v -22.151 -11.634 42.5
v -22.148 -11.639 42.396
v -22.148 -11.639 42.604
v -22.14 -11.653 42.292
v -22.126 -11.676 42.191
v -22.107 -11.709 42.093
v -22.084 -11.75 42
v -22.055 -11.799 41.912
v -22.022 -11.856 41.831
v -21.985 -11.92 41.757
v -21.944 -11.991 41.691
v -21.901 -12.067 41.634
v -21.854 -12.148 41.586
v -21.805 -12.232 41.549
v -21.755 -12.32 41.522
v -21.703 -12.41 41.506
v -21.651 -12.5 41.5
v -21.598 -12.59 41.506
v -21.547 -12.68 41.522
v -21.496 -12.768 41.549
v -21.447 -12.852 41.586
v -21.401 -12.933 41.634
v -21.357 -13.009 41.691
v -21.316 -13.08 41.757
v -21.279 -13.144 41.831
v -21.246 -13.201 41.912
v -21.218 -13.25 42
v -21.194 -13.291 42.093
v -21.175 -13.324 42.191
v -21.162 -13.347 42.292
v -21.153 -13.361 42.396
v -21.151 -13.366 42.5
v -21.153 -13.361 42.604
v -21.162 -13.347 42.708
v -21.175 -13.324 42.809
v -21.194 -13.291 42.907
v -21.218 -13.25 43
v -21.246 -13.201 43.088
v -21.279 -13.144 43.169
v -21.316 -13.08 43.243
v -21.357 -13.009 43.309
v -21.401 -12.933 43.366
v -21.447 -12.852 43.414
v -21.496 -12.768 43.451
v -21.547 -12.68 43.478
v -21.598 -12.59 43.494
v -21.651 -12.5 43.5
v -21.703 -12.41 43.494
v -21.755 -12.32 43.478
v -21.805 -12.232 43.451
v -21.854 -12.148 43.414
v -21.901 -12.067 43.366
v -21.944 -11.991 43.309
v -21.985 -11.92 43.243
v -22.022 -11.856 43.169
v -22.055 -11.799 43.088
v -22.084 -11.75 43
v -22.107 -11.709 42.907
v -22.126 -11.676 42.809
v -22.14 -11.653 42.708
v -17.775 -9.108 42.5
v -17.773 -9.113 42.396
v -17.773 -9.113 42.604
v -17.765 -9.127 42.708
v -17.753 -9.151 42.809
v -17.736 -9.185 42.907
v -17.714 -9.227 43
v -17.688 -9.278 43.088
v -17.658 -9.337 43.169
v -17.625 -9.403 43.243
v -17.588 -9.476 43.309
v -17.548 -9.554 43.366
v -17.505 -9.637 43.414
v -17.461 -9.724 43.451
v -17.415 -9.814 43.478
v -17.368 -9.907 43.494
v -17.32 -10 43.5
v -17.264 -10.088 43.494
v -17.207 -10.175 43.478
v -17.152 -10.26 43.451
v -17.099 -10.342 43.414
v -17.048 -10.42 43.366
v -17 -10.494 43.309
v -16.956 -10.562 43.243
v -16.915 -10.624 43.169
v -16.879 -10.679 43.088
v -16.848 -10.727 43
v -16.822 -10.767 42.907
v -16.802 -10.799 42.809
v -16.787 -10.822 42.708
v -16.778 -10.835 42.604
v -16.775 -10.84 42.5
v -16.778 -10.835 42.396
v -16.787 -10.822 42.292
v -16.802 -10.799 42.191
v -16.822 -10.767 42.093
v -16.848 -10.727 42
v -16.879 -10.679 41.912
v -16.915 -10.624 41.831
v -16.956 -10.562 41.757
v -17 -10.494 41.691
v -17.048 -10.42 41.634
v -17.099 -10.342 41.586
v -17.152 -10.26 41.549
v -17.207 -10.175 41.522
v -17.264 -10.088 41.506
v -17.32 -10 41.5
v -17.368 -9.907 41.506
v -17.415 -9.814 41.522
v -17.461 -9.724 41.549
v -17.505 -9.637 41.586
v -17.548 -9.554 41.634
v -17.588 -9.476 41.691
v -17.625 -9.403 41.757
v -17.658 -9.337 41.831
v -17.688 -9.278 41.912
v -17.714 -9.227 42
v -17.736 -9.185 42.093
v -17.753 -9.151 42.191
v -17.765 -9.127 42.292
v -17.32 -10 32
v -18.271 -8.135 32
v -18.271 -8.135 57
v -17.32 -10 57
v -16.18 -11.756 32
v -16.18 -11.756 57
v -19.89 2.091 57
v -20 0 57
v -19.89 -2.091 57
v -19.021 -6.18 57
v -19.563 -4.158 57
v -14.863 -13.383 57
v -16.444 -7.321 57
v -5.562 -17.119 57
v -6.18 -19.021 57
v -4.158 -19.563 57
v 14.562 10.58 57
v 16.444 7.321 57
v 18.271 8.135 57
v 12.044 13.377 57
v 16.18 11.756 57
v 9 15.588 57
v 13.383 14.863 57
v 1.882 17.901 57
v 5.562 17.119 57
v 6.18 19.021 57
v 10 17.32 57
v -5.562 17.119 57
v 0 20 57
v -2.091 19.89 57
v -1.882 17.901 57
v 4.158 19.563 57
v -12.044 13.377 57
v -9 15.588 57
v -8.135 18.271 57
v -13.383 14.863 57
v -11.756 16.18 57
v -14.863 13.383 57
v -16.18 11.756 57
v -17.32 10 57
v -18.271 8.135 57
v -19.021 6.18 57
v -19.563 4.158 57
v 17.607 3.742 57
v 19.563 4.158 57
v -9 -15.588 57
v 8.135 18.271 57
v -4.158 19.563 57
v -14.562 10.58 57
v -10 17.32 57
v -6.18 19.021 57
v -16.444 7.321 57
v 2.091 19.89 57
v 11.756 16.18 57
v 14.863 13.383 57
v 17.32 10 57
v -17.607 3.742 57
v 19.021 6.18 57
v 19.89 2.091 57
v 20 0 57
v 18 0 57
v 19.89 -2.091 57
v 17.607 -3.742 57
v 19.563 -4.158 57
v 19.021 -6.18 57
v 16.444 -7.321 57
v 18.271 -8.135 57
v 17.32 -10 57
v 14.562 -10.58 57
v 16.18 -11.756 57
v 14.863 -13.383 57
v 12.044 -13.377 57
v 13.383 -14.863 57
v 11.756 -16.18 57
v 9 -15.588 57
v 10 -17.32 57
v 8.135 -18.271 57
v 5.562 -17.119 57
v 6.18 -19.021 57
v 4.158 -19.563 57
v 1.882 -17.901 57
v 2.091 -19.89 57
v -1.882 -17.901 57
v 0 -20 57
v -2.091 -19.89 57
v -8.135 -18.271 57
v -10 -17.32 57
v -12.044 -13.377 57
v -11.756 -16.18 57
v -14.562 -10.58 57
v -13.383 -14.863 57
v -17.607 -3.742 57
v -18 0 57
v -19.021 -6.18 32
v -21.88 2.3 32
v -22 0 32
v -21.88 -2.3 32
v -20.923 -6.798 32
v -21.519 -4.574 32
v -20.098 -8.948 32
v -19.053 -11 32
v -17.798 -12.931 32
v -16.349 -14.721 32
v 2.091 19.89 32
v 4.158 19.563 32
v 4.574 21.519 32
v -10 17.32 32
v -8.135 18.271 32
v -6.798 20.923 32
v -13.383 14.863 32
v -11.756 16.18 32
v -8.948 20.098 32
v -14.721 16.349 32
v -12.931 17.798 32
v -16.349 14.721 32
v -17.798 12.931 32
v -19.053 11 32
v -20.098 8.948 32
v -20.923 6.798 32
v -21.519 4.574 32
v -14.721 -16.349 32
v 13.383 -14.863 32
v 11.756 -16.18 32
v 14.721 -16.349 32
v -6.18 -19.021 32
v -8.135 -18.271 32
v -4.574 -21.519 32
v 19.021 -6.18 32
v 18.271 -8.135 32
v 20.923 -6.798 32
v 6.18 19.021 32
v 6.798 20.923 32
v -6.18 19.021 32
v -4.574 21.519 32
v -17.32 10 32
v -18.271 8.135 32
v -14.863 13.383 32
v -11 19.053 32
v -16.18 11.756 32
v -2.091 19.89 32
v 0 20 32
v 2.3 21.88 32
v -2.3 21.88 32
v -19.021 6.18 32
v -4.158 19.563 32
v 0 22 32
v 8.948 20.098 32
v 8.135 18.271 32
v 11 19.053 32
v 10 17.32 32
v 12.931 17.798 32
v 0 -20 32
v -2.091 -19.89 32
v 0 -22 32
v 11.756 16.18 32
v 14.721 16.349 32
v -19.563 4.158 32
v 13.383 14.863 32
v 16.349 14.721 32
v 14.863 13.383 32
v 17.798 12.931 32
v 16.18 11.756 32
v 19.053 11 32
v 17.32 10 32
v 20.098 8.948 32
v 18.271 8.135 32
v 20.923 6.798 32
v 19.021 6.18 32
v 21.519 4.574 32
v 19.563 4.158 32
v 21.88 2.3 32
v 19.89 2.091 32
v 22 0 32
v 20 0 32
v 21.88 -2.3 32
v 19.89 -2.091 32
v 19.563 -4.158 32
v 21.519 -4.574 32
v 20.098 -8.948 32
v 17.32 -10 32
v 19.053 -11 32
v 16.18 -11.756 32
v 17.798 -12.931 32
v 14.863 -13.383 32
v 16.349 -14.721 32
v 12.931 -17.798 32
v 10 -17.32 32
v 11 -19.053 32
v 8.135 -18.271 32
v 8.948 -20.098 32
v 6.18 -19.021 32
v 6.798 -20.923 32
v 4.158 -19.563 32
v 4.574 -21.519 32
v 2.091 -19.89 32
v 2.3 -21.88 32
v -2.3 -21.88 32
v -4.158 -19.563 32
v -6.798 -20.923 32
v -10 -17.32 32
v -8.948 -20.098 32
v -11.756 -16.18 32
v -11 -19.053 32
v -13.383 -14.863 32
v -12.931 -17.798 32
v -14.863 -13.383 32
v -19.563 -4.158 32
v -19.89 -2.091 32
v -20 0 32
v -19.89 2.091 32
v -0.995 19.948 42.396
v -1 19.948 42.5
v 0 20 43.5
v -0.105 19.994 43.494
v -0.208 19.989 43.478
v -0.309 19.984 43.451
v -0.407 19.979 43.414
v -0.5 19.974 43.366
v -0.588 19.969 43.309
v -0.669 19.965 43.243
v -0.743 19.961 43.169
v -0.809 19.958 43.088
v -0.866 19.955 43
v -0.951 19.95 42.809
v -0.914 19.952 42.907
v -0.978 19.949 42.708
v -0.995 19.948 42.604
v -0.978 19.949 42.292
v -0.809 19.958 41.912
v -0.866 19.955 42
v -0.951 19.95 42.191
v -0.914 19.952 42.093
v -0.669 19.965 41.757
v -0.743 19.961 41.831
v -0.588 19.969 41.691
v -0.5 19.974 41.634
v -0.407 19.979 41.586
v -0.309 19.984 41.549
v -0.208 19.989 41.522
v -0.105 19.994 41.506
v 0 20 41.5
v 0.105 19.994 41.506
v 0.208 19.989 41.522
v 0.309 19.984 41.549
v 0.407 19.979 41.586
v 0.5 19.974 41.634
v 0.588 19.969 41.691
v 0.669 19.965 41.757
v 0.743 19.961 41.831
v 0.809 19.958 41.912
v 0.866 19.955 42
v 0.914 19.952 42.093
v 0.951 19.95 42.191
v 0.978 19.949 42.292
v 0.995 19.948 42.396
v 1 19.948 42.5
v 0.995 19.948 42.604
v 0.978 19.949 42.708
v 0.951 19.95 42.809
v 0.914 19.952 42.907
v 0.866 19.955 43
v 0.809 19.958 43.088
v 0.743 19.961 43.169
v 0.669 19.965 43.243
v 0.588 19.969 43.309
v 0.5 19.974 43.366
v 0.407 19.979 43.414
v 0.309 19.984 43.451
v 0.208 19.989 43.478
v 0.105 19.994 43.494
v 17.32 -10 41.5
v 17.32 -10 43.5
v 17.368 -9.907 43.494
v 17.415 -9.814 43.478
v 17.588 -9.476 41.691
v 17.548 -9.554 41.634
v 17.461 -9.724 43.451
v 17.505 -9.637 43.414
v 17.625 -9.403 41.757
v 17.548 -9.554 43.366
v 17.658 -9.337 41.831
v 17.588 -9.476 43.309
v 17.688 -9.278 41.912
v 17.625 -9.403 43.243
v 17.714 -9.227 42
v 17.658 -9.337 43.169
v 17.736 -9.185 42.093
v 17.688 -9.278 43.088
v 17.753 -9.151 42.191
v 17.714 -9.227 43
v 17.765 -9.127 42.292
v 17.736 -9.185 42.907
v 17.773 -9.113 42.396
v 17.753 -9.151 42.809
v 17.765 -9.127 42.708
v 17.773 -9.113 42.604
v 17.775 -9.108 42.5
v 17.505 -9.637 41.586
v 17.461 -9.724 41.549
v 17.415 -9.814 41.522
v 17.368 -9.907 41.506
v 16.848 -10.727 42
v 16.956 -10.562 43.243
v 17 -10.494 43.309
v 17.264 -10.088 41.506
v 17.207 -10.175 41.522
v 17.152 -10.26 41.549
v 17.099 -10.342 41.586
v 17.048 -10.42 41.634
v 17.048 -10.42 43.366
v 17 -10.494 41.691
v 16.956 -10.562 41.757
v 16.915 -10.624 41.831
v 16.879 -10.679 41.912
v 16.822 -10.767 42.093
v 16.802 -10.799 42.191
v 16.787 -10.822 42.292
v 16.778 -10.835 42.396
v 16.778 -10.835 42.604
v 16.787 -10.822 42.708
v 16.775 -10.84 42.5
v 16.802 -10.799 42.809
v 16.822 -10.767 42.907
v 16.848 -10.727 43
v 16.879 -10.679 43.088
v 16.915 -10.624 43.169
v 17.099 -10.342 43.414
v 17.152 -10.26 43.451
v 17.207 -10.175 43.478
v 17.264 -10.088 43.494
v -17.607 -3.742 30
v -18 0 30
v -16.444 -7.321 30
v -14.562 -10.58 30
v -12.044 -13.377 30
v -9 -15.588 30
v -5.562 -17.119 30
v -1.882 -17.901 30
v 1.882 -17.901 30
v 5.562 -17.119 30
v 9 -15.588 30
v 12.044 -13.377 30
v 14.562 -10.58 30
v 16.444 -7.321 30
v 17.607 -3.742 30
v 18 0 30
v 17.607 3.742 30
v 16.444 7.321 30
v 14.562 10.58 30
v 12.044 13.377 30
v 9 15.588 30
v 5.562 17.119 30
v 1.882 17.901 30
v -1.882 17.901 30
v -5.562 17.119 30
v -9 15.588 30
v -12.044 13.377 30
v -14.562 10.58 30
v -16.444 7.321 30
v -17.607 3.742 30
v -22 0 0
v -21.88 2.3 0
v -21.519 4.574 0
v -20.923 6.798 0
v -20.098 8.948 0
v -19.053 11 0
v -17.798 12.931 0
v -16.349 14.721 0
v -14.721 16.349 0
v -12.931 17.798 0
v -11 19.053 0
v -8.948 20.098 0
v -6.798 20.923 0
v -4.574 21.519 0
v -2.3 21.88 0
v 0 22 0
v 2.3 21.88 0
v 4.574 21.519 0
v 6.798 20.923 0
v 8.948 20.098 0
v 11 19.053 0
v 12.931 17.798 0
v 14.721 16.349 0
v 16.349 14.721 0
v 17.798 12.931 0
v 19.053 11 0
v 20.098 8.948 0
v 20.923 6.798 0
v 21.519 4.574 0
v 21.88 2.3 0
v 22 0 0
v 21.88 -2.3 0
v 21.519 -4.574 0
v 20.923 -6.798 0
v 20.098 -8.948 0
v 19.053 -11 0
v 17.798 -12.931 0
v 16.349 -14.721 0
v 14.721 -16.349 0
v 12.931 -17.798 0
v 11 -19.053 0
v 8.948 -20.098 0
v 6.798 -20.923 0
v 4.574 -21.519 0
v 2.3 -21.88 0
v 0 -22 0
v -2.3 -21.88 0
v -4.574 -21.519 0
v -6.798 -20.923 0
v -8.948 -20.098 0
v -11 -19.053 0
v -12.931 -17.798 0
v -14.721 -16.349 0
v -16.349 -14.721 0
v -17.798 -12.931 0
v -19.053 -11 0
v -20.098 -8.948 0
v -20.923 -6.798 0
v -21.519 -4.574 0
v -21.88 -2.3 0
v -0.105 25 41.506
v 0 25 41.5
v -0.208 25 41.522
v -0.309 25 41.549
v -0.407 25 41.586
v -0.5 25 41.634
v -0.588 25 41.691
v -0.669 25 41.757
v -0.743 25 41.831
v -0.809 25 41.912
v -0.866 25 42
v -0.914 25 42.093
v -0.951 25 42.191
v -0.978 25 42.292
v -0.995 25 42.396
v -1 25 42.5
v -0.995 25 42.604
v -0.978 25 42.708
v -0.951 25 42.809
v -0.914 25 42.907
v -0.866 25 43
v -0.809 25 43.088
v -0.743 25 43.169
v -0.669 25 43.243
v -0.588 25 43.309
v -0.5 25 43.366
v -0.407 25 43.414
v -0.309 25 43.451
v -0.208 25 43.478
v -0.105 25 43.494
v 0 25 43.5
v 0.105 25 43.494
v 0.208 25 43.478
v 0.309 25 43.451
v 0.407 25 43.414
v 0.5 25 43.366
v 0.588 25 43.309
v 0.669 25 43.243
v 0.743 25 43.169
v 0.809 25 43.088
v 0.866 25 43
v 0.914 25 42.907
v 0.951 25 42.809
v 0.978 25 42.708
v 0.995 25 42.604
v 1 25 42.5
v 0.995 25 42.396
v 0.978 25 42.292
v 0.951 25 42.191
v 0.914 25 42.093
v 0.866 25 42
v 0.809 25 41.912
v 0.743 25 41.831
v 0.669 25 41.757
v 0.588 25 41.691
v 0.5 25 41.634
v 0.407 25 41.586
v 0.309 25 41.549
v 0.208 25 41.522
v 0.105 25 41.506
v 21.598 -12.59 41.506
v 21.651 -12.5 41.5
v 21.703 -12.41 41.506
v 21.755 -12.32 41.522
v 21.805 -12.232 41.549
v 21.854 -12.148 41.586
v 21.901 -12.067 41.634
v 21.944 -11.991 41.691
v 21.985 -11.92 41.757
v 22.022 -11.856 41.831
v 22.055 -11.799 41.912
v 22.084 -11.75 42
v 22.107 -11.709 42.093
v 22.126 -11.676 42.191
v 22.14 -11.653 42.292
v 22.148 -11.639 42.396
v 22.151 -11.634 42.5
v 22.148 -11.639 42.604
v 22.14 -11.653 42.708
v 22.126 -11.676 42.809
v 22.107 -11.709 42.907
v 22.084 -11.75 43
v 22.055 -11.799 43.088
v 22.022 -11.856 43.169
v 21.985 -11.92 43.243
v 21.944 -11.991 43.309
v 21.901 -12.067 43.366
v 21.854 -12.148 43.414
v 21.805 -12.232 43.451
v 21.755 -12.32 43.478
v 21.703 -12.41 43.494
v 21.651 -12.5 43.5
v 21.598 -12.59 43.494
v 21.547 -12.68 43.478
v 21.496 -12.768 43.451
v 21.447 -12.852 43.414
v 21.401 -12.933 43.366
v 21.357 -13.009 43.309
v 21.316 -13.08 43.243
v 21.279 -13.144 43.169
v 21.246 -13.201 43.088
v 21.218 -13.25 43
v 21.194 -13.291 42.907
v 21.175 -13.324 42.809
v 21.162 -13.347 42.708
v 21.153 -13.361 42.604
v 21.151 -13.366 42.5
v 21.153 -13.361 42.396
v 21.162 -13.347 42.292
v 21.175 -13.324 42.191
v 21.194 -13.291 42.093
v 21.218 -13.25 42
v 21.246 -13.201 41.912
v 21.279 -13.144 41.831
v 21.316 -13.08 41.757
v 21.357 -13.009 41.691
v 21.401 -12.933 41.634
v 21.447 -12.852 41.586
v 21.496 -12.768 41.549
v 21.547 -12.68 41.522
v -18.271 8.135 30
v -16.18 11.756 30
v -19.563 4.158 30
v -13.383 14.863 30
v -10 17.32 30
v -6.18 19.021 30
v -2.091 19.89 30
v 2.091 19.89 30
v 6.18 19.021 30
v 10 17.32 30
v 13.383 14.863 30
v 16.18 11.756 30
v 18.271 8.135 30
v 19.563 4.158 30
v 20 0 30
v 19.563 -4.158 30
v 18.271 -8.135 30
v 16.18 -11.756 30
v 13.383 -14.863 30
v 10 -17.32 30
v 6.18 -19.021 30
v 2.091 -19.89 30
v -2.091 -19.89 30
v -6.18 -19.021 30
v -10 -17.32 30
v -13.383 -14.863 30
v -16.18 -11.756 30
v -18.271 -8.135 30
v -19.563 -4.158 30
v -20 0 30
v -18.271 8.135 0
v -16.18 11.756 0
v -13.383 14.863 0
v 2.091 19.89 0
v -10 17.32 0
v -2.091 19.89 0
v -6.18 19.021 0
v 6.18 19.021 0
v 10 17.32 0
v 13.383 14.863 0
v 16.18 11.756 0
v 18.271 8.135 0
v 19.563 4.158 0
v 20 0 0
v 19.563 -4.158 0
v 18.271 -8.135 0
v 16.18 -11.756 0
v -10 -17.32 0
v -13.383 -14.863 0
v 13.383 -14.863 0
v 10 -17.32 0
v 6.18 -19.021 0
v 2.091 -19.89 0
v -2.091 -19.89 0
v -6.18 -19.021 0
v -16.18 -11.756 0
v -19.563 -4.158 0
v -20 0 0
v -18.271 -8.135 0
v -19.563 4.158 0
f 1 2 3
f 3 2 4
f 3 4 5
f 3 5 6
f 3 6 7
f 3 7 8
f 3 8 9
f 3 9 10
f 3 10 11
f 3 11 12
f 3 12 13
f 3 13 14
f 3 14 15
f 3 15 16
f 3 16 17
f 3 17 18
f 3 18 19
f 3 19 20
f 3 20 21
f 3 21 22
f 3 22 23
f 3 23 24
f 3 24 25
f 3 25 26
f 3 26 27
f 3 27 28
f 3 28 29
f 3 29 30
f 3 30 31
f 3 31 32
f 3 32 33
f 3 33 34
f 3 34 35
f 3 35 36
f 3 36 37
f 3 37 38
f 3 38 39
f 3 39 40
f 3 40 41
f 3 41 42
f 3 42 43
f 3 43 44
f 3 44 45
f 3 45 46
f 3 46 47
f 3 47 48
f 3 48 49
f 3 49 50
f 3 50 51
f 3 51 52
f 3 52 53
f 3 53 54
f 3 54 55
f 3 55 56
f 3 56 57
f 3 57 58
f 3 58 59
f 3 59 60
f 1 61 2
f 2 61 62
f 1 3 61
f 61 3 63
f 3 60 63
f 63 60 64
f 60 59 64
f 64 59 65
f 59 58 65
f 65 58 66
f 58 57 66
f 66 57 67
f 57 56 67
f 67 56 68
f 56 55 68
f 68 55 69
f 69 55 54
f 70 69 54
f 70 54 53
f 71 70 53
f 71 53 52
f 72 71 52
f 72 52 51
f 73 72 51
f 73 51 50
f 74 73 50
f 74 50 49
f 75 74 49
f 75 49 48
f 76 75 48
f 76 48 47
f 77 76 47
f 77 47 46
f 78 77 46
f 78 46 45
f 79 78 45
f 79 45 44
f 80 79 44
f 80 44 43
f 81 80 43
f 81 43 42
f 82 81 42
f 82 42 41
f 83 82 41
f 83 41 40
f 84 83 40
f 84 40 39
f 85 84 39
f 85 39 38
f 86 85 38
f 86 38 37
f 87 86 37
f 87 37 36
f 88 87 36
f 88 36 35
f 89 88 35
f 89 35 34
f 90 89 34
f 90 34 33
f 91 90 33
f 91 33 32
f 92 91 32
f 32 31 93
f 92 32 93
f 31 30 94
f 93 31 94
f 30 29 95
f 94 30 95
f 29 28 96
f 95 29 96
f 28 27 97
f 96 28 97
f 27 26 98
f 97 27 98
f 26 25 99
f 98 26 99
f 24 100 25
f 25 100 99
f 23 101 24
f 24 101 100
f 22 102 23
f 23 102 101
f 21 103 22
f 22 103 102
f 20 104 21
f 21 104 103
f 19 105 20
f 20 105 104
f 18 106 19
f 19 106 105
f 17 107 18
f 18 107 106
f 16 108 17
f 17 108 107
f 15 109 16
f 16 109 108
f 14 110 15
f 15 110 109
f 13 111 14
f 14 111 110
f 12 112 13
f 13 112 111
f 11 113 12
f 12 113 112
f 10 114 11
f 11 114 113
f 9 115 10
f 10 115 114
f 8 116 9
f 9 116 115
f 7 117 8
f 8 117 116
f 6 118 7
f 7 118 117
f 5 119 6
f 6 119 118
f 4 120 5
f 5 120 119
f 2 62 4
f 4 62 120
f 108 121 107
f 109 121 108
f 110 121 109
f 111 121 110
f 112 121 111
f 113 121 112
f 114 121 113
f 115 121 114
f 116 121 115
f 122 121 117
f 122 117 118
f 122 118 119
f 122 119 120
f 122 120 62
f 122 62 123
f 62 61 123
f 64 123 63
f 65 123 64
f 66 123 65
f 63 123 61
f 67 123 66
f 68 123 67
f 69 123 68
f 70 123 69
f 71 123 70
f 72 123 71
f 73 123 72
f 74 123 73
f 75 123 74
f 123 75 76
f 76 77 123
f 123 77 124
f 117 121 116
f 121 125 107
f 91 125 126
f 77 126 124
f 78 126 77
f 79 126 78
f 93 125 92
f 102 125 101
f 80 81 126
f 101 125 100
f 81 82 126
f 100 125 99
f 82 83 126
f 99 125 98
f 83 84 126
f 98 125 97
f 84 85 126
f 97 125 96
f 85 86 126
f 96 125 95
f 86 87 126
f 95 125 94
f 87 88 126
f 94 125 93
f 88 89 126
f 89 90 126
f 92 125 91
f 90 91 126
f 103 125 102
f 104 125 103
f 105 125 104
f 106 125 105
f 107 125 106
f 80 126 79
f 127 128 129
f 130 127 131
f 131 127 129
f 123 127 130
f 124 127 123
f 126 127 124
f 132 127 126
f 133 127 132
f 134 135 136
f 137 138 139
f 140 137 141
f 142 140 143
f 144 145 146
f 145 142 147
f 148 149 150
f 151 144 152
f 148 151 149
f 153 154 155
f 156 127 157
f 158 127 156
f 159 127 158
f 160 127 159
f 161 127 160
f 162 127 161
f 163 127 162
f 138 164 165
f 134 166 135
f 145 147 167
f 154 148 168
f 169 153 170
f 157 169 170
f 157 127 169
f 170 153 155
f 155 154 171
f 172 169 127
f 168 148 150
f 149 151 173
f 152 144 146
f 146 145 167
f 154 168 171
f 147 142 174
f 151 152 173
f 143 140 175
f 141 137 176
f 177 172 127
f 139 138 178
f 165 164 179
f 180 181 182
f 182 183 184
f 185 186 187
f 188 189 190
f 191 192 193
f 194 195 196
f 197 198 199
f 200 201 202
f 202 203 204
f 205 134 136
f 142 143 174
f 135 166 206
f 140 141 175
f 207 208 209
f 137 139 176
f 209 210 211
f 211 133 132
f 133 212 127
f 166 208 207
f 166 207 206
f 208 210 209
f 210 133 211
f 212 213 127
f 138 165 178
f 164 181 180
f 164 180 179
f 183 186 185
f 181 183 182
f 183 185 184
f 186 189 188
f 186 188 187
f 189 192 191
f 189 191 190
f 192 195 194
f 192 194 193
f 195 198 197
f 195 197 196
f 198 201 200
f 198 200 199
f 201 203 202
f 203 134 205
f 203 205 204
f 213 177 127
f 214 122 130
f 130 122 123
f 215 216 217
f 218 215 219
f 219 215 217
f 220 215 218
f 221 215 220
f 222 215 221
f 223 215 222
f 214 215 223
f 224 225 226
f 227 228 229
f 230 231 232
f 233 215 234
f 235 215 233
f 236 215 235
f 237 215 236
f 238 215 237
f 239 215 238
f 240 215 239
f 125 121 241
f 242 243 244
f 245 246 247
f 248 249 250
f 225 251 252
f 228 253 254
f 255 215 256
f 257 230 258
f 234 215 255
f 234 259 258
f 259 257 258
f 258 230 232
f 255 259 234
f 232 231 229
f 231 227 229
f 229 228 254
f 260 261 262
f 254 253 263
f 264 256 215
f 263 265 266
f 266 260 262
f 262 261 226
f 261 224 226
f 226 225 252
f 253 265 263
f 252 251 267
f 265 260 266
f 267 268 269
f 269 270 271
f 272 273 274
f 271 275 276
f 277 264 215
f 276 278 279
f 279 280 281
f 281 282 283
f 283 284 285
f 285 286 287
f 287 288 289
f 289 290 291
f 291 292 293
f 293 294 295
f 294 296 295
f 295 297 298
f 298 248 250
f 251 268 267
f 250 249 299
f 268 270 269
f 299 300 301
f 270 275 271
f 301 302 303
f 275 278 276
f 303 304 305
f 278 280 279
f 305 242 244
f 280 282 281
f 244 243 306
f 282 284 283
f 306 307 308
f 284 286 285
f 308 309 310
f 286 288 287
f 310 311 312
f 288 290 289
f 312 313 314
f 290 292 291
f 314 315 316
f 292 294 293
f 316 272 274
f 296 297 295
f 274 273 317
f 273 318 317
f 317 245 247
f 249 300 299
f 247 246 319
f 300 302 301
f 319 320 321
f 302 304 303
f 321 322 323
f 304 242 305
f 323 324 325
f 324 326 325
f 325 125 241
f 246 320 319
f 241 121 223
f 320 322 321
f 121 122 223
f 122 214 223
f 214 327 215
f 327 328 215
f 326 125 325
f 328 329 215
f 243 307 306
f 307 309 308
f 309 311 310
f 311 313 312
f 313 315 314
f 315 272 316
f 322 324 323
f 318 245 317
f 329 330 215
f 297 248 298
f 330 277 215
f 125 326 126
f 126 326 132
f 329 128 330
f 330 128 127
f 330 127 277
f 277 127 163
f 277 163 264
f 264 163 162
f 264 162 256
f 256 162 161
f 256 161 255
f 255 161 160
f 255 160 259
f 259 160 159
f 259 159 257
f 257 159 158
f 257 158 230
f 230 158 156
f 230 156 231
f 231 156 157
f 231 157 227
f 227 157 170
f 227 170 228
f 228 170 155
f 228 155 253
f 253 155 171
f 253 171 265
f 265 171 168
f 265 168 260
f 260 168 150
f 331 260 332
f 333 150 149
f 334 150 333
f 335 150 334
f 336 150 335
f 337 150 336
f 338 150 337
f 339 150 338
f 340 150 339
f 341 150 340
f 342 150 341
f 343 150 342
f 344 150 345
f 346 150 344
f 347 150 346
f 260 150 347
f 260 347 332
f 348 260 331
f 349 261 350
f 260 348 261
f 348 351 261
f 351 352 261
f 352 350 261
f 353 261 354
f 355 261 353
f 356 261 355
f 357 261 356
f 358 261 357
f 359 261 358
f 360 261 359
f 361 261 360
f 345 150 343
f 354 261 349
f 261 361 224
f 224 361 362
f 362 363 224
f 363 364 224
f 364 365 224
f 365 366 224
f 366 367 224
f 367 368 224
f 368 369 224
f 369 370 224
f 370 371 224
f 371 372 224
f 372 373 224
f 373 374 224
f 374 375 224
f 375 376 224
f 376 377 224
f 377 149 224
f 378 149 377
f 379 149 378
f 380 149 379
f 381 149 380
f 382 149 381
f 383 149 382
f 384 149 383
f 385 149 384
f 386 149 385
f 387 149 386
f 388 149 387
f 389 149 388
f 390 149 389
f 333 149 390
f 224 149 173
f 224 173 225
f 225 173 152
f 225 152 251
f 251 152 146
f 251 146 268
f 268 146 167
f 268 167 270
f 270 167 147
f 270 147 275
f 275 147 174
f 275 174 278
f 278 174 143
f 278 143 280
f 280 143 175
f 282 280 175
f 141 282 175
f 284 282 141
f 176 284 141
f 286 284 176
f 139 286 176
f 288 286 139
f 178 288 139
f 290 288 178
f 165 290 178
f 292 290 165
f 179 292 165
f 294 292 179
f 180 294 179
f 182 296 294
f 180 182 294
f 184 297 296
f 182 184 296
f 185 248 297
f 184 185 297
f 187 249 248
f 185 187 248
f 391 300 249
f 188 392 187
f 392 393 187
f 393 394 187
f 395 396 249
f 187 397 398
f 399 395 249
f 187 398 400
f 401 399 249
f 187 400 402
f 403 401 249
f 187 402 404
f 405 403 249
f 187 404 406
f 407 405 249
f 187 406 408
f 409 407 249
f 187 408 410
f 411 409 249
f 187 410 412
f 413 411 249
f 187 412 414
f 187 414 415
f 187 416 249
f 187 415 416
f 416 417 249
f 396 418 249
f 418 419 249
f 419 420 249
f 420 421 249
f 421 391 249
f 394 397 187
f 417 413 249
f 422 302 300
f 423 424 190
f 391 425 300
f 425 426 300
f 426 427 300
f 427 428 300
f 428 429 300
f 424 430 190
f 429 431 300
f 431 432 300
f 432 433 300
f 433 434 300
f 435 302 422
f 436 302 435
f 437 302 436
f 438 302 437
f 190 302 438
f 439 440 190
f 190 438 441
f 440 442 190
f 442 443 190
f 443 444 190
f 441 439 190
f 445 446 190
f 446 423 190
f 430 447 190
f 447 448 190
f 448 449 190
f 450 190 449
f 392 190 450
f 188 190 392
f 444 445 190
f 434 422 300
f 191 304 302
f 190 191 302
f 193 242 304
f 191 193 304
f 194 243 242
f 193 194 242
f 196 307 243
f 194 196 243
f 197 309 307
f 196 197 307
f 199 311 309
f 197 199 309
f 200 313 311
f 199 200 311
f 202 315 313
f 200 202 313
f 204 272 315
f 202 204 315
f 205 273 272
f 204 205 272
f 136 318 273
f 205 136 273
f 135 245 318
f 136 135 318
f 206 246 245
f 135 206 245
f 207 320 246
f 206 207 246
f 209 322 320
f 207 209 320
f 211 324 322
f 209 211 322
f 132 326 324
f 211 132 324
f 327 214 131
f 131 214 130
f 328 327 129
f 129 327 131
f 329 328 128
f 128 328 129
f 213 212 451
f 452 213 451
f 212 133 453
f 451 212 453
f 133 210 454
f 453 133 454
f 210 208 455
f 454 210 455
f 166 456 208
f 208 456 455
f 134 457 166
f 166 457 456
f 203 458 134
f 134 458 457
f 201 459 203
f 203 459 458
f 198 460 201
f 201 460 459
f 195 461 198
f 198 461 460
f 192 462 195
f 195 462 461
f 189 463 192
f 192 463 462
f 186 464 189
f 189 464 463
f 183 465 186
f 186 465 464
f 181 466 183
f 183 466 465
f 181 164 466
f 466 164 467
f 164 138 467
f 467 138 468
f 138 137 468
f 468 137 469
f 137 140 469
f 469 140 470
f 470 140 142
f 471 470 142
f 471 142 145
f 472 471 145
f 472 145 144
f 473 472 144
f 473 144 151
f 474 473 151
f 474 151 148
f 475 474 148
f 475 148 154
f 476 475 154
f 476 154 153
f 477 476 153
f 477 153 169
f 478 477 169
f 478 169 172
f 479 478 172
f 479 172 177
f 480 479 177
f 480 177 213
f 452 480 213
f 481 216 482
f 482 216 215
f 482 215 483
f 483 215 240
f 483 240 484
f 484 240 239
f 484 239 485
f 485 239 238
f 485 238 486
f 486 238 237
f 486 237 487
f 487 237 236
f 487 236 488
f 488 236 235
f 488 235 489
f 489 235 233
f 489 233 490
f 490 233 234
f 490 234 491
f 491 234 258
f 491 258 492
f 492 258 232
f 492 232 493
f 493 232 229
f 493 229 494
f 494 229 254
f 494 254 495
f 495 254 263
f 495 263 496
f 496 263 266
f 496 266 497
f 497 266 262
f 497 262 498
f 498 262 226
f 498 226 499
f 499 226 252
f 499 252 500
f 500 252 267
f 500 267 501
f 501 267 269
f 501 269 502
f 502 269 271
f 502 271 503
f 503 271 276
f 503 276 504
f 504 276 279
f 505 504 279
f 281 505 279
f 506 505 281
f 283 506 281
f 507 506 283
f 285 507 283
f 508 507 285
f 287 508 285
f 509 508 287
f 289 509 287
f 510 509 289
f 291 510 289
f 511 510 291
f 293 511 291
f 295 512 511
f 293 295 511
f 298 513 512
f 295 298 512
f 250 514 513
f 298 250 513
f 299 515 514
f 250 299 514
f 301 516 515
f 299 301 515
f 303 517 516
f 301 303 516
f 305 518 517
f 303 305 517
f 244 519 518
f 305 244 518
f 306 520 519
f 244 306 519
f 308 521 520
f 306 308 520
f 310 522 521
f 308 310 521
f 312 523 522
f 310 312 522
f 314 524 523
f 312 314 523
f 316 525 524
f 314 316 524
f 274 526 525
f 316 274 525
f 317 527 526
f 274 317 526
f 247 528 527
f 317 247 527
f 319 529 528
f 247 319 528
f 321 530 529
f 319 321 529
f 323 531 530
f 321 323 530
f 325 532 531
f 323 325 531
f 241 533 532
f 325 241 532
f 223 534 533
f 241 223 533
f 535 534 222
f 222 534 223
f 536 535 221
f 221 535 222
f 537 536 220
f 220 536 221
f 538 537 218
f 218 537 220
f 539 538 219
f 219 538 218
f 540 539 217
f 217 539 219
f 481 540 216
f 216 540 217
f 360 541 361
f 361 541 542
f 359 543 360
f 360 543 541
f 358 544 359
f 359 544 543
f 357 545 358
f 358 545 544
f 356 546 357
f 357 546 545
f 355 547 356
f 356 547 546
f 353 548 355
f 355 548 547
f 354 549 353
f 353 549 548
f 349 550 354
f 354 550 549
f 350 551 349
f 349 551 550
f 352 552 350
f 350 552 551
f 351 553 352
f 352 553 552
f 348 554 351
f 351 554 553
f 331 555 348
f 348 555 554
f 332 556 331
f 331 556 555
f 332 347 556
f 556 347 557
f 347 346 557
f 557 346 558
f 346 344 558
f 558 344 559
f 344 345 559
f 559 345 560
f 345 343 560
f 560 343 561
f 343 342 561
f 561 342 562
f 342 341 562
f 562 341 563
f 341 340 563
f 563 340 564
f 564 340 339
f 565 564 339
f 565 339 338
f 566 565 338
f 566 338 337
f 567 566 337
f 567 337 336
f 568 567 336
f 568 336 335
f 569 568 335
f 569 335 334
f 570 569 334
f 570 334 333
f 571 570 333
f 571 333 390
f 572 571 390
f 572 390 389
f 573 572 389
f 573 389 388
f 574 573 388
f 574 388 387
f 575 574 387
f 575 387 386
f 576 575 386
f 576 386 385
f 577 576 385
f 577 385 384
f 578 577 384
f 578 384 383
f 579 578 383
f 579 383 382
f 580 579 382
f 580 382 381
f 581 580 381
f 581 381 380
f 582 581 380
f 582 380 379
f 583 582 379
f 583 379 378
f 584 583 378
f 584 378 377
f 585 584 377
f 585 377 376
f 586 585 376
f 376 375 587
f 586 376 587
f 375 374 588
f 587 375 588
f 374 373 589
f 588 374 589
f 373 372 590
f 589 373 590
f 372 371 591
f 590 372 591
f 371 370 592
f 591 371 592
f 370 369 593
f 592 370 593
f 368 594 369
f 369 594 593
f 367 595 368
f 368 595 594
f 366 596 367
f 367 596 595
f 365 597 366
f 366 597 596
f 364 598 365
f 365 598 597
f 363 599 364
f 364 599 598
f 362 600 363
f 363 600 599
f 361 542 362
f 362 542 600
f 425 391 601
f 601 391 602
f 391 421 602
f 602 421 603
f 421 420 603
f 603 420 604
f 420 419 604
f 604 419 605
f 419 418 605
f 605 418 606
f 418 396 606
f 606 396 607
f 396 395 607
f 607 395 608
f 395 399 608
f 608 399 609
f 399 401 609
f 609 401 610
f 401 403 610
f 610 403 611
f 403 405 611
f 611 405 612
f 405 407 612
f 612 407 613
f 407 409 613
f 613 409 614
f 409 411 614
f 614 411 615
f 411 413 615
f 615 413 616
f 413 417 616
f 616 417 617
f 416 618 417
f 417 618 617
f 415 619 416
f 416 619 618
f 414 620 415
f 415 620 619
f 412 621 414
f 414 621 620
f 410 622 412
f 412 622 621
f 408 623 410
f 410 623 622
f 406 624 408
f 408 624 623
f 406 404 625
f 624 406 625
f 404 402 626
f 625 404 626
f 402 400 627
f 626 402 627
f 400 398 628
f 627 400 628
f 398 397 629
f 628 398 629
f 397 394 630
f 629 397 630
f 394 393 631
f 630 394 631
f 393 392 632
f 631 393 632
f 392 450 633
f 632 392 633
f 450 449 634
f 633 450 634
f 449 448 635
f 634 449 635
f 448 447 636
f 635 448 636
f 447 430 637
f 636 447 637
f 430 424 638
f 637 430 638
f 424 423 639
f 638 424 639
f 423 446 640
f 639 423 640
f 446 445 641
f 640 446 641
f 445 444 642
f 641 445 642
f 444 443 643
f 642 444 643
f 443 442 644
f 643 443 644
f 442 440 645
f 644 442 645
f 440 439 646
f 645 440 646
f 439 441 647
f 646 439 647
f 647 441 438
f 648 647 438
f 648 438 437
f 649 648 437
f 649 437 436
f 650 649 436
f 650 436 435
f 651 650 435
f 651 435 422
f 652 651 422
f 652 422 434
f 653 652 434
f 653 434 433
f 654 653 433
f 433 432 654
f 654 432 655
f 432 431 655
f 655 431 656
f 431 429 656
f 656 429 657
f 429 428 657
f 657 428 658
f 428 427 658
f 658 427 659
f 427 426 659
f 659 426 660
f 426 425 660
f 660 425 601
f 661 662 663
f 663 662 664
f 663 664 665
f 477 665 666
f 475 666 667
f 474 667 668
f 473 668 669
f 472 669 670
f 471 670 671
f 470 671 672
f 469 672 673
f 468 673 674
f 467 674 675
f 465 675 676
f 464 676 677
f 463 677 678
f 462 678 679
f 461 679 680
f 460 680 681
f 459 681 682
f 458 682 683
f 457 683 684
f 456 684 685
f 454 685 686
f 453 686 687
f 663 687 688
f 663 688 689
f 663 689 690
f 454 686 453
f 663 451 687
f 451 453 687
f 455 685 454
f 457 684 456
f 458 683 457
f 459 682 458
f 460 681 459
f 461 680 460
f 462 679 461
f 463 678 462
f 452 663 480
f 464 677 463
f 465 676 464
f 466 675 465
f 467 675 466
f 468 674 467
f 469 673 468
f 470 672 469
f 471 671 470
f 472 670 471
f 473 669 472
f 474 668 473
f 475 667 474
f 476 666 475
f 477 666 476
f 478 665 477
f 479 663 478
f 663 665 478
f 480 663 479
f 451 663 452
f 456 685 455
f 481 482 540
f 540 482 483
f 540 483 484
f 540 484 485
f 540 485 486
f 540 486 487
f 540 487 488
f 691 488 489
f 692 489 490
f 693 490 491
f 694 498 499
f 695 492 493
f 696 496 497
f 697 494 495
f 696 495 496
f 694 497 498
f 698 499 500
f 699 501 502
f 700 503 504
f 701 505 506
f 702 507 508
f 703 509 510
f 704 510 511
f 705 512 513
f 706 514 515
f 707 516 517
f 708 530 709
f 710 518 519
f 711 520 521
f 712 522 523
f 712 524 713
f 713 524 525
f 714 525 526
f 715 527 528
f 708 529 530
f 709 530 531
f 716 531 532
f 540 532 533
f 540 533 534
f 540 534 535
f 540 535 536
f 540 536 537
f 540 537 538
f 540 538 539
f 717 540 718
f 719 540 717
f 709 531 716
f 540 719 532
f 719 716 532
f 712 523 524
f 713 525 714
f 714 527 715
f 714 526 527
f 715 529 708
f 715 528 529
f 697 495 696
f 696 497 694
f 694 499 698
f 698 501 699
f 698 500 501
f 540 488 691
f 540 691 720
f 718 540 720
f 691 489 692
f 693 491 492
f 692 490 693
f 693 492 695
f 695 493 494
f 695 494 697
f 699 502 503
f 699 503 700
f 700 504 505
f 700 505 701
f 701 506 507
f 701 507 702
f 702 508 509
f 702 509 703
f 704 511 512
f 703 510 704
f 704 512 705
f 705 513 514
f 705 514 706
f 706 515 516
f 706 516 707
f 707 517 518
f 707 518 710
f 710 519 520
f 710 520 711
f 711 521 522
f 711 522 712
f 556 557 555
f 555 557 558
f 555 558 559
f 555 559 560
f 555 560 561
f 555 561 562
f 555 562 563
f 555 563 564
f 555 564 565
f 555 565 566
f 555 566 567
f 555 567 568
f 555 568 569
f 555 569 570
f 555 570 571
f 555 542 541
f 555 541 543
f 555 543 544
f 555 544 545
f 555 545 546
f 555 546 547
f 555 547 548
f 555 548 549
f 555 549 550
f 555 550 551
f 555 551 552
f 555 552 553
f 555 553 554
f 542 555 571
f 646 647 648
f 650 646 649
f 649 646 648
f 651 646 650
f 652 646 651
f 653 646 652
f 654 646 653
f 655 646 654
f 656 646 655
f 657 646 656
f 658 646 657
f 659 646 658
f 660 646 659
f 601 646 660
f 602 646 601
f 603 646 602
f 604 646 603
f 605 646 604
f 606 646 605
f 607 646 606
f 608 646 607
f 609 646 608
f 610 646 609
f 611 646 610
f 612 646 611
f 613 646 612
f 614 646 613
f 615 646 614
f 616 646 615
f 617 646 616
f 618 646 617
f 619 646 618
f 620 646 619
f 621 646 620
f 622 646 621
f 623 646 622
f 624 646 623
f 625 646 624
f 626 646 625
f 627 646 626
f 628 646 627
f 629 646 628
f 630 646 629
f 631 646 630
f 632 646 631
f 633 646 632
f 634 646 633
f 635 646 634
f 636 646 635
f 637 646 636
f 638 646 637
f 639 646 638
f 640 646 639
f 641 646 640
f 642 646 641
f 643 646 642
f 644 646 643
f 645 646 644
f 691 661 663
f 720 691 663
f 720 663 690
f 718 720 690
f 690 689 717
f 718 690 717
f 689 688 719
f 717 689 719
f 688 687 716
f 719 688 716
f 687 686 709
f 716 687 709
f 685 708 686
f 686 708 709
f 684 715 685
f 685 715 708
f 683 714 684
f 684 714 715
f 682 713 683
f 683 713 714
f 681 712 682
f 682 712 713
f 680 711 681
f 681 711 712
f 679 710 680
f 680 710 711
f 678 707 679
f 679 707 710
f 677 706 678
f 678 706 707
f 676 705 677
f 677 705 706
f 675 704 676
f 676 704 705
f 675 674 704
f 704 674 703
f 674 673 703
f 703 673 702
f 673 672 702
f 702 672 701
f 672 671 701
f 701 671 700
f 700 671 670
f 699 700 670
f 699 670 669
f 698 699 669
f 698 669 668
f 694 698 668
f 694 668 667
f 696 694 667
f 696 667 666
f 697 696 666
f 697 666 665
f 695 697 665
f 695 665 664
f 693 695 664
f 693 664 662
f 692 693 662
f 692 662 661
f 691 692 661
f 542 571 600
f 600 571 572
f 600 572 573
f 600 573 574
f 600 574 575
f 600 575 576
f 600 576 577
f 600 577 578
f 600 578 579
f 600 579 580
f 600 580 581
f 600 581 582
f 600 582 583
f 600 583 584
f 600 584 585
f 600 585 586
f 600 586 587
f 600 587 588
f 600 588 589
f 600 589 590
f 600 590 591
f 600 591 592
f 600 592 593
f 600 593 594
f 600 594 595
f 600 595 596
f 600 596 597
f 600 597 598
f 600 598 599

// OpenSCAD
// file: common.scad
module ring(nombre_spheres, rayon_spheres, rayon_exterieur){
	for ( i= [0:nombre_spheres])
		rotate([0,0,i*(360/nombre_spheres)]) {
			translate([rayon_exterieur,0,0])
			sphere(rayon_spheres, $fn=resolution_spheres);
		}
}

module tube(hauteur, rayon_exterieur, rayon_interieur, resolution=60) {
	difference(){
	  cylinder(hauteur, rayon_exterieur, rayon_exterieur, $fn=resolution);
	  translate([0,0,-1])	
	 	  cylinder(hauteur + 2 , rayon_interieur, rayon_interieur);
	}
}
// main file
include <common.scad>;
// include <variables_jonction.scad>;

// 1 = embout extérieur : accueille le diffuseur
// 2 = embout intérieur : s'enclenche dans la jonction femelle (+ étroit)

// ! mesures à prendre 

hauteur_1 = 30;
rayon_exterieur_1 = 22;
rayon_interieur_1 = 20;

hauteur_2 = 25;
rayon_exterieur_2 = 20;
rayon_interieur_2 = 18;

hauteur_rondelle = 2;
hauteur_totale = hauteur_1 + hauteur_2 + hauteur_rondelle;
nb_attache_douille = 3;

tube(hauteur_1, rayon_exterieur_1, rayon_interieur_1, 60);

translate([0,0,hauteur_1])
	tube(hauteur_rondelle, rayon_exterieur_1, rayon_interieur_2);

translate([0,0,hauteur_1+2])
	tube(hauteur_2, rayon_exterieur_2, rayon_interieur_2, 60);

for ( i= [0:nb_attache_douille] )
	rotate([0,0,i*(360/nb_attache_douille)]) {
		translate([0, rayon_exterieur_2 + 5, (hauteur_1 + hauteur_2/2)])
			rotate([90,0,0]) {
				cylinder((rayon_exterieur_2 - rayon_interieur_2 +5), 1, $fn=60);
			}
	}
